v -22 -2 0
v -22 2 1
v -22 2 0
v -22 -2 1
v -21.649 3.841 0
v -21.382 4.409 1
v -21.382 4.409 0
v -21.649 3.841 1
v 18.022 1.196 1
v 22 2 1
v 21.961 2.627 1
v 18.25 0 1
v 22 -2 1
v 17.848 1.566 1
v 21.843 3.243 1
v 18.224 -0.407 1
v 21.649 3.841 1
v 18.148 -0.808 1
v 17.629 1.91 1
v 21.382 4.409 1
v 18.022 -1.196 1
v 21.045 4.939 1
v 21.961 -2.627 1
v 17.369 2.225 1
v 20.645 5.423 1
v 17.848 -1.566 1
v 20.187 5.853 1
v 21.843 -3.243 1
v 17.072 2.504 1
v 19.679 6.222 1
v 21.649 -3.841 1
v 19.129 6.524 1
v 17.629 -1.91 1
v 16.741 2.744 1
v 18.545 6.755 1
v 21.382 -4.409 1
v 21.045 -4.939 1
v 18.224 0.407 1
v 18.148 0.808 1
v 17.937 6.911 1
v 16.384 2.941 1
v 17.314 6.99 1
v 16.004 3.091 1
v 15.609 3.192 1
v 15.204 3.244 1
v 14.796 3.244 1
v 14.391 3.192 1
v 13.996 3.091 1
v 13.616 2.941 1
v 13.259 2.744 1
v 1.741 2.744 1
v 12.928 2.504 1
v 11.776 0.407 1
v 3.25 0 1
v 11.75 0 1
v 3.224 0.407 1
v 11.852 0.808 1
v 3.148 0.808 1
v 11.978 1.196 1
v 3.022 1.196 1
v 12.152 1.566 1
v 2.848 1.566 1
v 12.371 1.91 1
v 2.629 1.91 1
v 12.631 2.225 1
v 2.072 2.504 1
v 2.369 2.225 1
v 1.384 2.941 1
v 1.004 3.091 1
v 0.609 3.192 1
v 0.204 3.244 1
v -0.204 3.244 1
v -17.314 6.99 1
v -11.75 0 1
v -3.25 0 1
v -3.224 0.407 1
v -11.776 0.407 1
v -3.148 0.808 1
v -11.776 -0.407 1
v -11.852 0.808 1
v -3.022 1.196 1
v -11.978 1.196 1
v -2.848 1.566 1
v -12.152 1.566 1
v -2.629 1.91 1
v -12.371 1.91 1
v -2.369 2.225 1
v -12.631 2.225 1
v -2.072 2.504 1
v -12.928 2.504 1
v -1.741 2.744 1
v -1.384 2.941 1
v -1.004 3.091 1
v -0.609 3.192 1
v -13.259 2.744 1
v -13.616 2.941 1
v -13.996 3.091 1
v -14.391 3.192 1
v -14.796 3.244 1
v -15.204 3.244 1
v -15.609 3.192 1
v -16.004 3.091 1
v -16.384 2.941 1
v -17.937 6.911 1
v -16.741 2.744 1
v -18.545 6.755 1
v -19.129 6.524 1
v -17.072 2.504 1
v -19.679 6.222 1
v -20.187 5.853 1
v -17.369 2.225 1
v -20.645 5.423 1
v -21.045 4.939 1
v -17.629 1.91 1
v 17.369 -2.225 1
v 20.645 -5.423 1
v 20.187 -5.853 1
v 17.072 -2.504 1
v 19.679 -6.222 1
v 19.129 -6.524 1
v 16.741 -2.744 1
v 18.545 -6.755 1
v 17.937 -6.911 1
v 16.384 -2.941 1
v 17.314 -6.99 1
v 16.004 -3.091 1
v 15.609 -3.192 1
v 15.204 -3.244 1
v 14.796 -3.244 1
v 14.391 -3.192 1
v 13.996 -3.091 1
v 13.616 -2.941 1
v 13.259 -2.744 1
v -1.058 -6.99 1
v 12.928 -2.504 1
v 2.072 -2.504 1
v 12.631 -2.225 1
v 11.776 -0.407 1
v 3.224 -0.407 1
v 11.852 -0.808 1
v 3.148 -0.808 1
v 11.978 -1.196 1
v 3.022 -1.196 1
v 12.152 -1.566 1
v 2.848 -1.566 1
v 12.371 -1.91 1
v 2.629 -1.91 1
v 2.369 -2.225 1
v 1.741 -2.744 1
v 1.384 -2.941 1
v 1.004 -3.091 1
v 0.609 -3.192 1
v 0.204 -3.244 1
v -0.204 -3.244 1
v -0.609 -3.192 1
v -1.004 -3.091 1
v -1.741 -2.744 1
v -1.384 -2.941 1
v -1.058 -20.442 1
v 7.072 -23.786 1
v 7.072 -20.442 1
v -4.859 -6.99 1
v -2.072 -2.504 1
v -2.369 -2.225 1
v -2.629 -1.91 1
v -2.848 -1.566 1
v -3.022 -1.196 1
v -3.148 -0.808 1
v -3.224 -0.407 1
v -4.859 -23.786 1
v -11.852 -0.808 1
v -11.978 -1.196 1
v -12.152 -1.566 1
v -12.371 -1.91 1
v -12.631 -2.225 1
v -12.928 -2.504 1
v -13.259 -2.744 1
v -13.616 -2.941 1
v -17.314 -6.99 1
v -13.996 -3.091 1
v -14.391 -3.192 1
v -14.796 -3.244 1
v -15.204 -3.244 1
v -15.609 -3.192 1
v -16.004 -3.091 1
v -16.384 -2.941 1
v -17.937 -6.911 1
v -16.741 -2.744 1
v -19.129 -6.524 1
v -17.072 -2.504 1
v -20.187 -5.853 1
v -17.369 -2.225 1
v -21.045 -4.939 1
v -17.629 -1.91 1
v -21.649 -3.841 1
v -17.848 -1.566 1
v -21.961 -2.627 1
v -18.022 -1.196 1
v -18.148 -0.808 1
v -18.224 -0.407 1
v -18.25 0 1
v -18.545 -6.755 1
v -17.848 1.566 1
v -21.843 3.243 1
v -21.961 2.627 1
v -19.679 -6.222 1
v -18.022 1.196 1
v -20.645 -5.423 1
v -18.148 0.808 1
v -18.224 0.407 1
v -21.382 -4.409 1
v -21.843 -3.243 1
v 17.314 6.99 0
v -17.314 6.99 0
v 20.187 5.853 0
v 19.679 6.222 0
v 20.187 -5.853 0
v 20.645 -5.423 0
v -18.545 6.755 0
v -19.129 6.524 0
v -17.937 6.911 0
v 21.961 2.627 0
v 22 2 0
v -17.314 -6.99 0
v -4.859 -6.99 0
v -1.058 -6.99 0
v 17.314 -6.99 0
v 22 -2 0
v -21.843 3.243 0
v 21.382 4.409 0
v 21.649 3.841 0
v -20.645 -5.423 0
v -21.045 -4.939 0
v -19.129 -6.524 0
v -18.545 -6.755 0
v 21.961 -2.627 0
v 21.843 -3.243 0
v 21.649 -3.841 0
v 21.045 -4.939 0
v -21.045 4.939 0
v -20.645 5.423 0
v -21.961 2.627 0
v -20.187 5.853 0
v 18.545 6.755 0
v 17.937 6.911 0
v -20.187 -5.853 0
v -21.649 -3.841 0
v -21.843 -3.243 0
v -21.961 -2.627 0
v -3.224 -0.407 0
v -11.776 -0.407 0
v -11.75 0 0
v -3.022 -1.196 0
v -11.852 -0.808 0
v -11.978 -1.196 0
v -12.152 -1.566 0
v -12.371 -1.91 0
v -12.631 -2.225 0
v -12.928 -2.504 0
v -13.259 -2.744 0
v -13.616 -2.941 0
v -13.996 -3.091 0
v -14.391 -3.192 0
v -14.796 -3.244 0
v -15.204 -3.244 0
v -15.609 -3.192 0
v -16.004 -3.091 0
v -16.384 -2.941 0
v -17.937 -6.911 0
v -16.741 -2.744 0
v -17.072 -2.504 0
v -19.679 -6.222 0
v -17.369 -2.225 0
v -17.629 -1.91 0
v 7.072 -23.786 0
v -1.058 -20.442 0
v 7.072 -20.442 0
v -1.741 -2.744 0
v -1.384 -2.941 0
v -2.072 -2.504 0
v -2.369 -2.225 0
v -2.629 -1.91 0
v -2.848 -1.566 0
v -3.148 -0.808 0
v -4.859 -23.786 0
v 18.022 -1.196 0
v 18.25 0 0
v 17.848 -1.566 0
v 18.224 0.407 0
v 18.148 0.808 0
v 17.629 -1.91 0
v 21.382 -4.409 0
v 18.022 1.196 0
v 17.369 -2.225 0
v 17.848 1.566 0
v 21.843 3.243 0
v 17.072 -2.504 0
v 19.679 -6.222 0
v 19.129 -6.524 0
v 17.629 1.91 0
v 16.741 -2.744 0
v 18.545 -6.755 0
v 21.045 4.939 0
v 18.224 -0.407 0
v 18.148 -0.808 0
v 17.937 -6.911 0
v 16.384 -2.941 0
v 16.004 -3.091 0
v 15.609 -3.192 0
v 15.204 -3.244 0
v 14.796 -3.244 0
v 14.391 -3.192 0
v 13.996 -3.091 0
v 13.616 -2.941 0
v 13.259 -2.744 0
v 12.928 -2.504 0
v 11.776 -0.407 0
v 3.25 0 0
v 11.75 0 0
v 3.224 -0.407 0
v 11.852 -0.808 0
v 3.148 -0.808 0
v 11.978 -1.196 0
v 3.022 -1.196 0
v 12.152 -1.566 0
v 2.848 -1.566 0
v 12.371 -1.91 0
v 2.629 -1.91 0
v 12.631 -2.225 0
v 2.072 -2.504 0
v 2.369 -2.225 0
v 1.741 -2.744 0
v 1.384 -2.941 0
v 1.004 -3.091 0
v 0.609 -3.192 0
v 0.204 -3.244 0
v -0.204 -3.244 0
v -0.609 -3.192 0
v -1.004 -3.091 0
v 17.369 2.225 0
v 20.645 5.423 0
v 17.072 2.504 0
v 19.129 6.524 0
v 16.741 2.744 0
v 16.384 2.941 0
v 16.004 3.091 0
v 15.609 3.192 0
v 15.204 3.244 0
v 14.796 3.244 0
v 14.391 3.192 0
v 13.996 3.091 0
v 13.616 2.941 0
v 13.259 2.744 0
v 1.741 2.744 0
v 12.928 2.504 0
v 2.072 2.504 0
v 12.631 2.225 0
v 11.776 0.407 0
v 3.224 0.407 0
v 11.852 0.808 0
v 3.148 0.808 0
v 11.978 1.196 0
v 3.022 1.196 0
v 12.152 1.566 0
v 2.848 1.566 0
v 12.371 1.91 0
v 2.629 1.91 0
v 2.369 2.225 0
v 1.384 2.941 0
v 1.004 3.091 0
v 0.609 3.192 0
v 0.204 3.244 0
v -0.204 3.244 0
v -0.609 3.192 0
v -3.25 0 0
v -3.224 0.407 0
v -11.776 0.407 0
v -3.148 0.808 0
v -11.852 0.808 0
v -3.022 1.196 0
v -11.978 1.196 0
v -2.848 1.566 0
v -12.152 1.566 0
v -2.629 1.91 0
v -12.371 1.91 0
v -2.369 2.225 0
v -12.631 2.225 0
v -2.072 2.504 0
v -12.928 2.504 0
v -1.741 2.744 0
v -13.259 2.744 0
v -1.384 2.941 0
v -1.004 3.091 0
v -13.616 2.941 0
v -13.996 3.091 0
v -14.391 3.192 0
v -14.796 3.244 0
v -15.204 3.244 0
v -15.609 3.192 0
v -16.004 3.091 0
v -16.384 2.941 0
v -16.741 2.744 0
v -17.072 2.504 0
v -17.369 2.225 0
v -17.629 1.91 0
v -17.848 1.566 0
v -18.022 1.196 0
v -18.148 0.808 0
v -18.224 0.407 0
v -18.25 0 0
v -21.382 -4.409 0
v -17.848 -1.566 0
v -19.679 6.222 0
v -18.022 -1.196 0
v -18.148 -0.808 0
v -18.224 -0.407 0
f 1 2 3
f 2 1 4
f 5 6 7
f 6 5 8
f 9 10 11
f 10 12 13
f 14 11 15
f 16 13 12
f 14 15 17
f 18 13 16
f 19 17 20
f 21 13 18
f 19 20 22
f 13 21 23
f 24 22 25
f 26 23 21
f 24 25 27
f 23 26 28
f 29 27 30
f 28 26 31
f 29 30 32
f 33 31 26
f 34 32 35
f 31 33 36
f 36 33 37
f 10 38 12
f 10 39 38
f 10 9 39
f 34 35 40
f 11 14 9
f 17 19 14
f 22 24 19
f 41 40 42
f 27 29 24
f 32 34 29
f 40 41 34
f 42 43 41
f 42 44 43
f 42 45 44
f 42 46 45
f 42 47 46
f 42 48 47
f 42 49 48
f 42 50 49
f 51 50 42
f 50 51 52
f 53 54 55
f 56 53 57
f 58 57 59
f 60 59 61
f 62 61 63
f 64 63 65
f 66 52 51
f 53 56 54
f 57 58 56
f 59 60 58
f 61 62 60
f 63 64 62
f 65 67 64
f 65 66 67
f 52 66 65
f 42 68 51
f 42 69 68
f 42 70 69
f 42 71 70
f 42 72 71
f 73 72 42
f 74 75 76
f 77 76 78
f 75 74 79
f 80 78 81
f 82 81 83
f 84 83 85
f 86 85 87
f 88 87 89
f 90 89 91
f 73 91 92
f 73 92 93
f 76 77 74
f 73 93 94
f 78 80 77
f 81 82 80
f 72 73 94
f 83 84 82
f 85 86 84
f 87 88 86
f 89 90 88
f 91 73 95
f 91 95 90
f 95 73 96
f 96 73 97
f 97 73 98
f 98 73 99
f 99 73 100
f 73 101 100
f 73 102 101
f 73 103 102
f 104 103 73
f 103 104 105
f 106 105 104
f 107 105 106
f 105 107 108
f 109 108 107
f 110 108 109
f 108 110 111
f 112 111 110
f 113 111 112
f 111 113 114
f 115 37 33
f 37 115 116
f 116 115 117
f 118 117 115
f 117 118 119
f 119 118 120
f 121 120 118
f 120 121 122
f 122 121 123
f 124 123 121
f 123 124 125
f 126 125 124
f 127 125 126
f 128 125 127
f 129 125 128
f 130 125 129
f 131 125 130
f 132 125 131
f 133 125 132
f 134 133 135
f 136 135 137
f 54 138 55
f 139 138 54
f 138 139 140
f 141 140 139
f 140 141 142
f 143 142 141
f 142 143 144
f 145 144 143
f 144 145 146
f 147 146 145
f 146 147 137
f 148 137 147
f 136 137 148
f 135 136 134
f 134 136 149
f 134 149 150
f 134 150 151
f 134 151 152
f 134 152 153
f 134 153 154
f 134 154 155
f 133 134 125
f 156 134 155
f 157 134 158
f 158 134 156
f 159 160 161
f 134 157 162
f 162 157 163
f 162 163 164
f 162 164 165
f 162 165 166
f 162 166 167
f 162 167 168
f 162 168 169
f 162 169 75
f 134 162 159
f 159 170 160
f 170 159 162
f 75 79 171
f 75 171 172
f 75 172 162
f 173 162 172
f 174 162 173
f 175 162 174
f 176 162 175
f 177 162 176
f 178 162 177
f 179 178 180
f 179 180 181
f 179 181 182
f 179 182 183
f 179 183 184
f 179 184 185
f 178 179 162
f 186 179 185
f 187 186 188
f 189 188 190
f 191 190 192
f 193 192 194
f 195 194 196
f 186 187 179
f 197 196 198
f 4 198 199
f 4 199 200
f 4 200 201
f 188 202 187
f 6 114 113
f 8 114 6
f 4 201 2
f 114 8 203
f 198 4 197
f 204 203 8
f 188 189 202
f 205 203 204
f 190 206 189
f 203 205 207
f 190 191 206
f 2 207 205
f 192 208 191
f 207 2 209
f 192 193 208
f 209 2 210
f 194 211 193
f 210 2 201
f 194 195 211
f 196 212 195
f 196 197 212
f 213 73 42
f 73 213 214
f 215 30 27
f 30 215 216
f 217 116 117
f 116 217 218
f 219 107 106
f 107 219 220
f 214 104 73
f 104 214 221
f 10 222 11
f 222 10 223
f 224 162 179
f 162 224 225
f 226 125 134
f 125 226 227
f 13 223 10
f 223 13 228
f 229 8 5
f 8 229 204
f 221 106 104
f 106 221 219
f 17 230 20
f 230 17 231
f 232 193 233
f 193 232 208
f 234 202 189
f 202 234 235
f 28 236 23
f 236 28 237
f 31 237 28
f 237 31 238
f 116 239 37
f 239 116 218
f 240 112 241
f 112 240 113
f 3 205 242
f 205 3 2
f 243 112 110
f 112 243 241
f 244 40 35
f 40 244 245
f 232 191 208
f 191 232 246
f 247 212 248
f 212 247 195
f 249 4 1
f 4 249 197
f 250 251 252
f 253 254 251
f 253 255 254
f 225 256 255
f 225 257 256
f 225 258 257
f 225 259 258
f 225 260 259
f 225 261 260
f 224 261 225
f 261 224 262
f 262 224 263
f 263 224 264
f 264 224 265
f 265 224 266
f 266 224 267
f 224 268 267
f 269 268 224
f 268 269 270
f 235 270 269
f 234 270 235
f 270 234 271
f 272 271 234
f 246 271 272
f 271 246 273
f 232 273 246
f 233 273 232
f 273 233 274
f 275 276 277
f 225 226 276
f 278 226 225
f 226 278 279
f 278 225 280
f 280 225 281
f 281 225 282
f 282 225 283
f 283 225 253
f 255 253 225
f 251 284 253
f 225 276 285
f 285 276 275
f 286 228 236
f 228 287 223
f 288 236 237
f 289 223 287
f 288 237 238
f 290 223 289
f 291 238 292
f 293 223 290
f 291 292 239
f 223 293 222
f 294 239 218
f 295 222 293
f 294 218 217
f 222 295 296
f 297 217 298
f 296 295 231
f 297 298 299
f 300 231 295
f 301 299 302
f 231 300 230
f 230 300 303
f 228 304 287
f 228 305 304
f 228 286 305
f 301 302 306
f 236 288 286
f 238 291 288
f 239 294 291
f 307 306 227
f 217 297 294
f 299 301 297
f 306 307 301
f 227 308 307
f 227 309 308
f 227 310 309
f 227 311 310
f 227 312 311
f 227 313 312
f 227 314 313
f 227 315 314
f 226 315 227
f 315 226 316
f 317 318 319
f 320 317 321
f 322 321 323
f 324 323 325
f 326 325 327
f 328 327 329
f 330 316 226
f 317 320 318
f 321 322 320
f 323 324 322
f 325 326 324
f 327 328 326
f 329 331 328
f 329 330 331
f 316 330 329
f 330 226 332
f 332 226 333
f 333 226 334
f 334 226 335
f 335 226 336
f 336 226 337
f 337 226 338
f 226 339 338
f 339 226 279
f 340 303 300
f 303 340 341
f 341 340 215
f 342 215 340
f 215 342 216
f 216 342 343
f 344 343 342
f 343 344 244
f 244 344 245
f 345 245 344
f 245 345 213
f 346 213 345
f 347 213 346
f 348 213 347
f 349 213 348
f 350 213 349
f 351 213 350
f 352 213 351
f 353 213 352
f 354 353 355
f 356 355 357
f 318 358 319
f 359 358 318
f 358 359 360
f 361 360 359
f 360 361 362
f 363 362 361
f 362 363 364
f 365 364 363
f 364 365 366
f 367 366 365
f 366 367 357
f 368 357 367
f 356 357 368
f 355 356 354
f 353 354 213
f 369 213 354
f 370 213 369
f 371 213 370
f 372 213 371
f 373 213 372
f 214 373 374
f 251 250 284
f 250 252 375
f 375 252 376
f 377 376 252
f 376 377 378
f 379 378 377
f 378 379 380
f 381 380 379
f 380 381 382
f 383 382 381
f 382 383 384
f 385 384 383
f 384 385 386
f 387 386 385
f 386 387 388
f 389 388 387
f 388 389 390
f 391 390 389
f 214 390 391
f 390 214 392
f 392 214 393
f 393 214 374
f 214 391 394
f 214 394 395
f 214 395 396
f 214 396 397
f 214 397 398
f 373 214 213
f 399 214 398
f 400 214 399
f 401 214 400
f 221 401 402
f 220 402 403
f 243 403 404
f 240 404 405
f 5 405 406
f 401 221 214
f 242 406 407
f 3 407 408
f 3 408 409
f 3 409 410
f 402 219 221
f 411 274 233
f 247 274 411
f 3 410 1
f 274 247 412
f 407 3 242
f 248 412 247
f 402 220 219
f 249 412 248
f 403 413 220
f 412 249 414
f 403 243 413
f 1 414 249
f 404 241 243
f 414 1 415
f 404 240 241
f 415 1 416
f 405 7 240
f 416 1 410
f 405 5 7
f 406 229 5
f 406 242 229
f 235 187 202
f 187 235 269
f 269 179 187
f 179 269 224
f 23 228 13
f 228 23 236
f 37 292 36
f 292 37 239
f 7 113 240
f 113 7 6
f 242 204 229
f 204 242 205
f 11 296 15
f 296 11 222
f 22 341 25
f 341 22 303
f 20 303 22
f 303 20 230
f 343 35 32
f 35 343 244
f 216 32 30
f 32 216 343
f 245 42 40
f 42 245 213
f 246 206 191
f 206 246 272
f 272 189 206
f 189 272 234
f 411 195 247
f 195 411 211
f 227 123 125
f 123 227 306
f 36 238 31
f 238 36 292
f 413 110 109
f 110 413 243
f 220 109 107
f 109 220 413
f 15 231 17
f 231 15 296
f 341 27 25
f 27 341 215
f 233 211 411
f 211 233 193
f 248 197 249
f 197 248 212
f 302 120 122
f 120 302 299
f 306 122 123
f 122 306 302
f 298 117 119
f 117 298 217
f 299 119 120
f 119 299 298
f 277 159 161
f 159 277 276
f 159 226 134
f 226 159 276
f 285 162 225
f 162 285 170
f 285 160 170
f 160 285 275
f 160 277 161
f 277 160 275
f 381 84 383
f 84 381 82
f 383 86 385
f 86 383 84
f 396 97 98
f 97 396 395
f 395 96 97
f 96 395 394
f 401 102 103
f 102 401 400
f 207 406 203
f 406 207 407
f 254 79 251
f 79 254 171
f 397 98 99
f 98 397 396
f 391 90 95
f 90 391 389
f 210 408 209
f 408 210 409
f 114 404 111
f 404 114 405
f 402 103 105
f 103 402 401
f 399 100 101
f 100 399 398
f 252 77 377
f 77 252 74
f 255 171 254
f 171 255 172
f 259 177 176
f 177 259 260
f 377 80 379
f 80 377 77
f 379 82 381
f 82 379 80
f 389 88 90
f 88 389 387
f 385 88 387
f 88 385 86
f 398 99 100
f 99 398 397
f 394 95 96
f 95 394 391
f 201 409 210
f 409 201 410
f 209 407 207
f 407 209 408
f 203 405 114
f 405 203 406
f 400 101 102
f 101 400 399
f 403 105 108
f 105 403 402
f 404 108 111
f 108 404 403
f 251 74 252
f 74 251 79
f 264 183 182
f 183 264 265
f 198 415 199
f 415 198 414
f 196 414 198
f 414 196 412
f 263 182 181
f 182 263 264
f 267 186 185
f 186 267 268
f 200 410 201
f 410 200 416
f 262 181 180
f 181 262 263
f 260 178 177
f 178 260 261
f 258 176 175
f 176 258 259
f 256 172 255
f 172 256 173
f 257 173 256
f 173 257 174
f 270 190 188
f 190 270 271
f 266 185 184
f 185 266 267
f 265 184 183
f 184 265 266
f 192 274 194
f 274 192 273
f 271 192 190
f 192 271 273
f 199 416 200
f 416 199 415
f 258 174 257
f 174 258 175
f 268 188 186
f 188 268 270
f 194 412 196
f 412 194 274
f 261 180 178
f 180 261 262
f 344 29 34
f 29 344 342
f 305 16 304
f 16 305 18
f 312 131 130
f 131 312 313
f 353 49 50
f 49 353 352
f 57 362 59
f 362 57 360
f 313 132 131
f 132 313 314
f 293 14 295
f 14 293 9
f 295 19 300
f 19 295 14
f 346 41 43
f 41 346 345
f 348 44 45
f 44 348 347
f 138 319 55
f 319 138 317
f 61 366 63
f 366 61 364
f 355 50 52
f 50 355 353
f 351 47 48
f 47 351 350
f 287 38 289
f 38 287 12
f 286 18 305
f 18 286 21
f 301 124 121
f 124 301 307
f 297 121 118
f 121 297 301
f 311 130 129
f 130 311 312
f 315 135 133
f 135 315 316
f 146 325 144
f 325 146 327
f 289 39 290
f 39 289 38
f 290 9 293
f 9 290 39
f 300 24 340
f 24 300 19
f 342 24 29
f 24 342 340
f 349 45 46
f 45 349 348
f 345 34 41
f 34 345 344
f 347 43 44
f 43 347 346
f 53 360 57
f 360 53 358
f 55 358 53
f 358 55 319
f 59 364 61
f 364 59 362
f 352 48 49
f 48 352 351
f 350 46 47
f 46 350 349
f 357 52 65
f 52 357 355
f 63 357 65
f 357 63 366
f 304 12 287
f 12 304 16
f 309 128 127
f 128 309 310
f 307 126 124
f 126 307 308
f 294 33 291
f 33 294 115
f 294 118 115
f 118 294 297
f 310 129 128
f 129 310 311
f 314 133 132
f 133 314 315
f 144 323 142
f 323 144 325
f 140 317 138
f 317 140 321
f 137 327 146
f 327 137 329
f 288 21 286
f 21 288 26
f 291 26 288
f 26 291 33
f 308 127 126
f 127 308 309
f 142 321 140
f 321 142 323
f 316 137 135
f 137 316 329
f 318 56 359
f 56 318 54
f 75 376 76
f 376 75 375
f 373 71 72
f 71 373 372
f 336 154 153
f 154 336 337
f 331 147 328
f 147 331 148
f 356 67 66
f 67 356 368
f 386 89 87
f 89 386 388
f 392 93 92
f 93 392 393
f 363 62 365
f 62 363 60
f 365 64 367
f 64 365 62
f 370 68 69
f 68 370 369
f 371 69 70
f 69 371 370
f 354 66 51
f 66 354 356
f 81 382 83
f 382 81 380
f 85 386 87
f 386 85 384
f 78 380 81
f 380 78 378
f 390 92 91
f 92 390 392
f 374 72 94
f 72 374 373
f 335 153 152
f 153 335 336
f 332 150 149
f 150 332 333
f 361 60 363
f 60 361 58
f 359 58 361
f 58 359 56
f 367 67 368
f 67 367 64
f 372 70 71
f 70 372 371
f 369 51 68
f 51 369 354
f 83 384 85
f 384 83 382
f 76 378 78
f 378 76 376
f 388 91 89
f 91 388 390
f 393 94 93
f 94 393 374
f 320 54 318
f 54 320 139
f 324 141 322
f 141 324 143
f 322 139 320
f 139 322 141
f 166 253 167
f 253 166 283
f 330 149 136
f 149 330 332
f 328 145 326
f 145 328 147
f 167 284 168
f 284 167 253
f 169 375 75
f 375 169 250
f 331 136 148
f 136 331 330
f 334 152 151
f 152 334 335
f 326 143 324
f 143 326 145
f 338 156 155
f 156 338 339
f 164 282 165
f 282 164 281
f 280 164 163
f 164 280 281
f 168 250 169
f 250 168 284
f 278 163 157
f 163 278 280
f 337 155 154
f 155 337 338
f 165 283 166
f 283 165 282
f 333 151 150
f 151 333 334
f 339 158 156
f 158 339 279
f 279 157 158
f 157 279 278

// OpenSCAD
$fn = 50;


difference() {
	union() {
		translate(v = [0, 0, 0]) {
			rotate(a = [0, 0, 0]) {
				hull() {
					translate(v = [-17.0000000000, 2.0000000000, 0]) {
						rotate(a = [0, 0, 0]) {
							translate(v = [0, 0, 0]) {
								rotate(a = [0, 0, 0]) {
									cylinder(h = 1, r = 5);
								}
							}
						}
					}
					translate(v = [17.0000000000, 2.0000000000, 0]) {
						rotate(a = [0, 0, 0]) {
							translate(v = [0, 0, 0]) {
								rotate(a = [0, 0, 0]) {
									cylinder(h = 1, r = 5);
								}
							}
						}
					}
					translate(v = [-17.0000000000, -2.0000000000, 0]) {
						rotate(a = [0, 0, 0]) {
							translate(v = [0, 0, 0]) {
								rotate(a = [0, 0, 0]) {
									cylinder(h = 1, r = 5);
								}
							}
						}
					}
					translate(v = [17.0000000000, -2.0000000000, 0]) {
						rotate(a = [0, 0, 0]) {
							translate(v = [0, 0, 0]) {
								rotate(a = [0, 0, 0]) {
									cylinder(h = 1, r = 5);
								}
							}
						}
					}
				}
			}
		}
		translate(v = [0, -5, 0]) {
			rotate(a = [0, 0, 0]) {
				linear_extrude(height = 1) {
					text(font = "DejaVu Sans Mono:style=Bold", halign = "center", size = 19.0000000000, text = "L", valign = "top");
				}
			}
		}
	}
	union() {
		translate(v = [-15.0000000000, 0.0000000000, -125.0000000000]) {
			rotate(a = [0, 0, 0]) {
				cylinder(h = 250, r = 3.2500000000);
			}
		}
		translate(v = [15.0000000000, 0.0000000000, -125.0000000000]) {
			rotate(a = [0, 0, 0]) {
				cylinder(h = 250, r = 3.2500000000);
			}
		}
		translate(v = [15.0000000000, 0.0000000000, -125.0000000000]) {
			rotate(a = [0, 0, 0]) {
				cylinder(h = 250, r = 3.2500000000);
			}
		}
		translate(v = [0, 0, -125.0000000000]) {
			rotate(a = [0, 0, 0]) {
				cylinder(h = 250, r = 3.2500000000);
			}
		}
	}
}
